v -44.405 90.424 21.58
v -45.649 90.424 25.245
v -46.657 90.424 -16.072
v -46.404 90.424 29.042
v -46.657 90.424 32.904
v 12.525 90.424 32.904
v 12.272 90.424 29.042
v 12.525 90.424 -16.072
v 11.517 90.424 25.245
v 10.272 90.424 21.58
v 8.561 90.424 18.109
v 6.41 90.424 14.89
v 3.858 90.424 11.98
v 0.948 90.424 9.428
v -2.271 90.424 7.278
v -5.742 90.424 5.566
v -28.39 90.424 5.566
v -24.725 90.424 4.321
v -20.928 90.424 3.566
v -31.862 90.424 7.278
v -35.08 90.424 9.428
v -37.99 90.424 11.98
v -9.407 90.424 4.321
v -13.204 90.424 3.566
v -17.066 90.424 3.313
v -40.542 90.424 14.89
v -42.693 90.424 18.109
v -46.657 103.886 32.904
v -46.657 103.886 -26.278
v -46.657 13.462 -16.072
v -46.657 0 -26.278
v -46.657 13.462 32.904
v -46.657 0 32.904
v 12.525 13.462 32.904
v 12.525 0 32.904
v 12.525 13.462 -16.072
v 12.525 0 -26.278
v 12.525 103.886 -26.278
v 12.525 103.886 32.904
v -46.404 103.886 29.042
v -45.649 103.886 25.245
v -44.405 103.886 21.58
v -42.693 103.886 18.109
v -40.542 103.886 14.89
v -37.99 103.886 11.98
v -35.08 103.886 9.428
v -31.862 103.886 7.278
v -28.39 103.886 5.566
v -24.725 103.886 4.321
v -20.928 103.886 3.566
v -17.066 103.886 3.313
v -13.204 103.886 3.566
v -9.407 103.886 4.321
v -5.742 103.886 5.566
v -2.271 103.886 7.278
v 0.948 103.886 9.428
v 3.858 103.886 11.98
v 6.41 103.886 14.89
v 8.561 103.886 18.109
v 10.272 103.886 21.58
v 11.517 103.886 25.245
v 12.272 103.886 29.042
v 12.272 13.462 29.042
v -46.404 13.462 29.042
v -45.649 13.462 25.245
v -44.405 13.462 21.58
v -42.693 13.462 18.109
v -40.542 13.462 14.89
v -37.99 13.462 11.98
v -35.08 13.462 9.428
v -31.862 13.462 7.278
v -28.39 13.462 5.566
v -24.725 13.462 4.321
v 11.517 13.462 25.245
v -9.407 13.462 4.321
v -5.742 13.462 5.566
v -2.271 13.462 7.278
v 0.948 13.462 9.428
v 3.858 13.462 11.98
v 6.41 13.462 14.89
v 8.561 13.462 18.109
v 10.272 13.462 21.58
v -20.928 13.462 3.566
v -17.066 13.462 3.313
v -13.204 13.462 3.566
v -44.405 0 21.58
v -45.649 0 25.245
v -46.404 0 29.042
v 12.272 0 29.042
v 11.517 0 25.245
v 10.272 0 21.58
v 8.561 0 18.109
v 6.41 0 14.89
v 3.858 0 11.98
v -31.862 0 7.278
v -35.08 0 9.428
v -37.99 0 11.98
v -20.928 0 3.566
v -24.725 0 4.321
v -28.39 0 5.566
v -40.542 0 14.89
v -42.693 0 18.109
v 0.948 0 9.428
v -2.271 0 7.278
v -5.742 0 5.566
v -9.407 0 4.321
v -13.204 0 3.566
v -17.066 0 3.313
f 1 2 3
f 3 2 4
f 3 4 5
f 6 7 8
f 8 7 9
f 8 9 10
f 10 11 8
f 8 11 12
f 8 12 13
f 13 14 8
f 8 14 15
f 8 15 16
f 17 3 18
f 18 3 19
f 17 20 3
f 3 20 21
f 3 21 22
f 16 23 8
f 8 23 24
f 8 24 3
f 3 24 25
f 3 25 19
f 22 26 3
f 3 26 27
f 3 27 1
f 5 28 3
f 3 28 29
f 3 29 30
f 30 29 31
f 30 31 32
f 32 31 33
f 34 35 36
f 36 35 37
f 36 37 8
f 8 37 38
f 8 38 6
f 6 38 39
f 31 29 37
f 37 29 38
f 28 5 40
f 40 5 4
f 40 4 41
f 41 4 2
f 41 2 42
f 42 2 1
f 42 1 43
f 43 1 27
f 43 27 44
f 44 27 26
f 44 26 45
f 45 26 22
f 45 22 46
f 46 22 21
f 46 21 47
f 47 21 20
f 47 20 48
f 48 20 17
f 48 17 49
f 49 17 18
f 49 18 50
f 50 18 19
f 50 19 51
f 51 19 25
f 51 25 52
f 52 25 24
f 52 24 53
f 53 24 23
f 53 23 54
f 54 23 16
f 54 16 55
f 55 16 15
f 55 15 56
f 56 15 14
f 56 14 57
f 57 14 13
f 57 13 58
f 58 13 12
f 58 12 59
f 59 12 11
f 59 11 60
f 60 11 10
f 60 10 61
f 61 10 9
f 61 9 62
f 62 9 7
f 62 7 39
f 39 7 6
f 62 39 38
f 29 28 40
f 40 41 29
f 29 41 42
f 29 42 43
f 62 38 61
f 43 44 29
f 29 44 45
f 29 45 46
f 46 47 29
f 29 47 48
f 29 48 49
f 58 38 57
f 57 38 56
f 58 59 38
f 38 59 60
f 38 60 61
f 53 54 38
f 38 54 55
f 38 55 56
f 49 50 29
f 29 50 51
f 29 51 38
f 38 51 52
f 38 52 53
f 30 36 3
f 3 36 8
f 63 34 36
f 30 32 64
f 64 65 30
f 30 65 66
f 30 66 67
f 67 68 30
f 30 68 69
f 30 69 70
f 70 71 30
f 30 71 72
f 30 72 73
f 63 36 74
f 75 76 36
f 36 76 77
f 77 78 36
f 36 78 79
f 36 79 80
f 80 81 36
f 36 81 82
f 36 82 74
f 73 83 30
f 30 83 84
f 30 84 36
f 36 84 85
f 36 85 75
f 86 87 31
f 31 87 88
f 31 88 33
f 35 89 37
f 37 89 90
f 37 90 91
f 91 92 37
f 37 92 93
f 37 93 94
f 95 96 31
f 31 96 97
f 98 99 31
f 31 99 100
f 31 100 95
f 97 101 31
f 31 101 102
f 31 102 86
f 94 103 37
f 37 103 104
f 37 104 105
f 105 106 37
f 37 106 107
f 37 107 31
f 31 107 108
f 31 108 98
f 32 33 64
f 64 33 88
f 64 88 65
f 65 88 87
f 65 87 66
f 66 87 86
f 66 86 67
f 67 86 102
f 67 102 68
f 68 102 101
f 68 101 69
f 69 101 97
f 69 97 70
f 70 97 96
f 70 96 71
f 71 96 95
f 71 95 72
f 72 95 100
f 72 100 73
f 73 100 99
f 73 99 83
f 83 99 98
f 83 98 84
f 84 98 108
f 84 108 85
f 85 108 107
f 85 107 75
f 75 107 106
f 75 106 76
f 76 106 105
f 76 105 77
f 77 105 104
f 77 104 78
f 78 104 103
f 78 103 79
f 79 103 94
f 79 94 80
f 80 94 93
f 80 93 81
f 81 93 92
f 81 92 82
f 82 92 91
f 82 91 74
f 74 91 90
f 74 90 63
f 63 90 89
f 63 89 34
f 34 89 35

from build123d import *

# Parameters (mm, degrees)
SKETCH1_W           = 59.182
SKETCH1_H           = 59.182
BOSS_EXTRUDE2_DEPTH = 103.886
SKETCH4_R           = 29.591
CUT_EXTRUDE1_DEPTH  = 119.540559012
SKETCH6_W           = 59.182
SKETCH6_H           = 76.962
CUT_EXTRUDE2_DEPTH  = 129.342082086
SKETCH8_W           = 59.182
SKETCH8_H           = 10.20581791
BOSS_EXTRUDE3_DEPTH = 76.962


with BuildPart() as part:
    # Sketch1 → Boss-Extrude2 (new body)
    with BuildSketch(Plane(origin=(0, 0, 0), x_dir=(1, 0, 0), z_dir=(0, 1, 0))):
        with Locations((-17.066045707, -3.313152031)):
            Rectangle(SKETCH1_W, SKETCH1_H)
    extrude(amount=BOSS_EXTRUDE2_DEPTH)

    # Sketch4 → Cut-Extrude1 (cut, through all)
    with BuildSketch(Plane.XZ):
        with Locations((-17.066045707, 32.904152031)):
            Circle(SKETCH4_R)
    extrude(amount=-CUT_EXTRUDE1_DEPTH, mode=Mode.SUBTRACT)

    # Sketch6 → Cut-Extrude2 (cut, through all)
    with BuildSketch(Plane(origin=(0, 0, -26.277847969), x_dir=(-1, 0, 0), z_dir=(0, 0, -1))):
        with Locations((17.066045707, 51.943)):
            Rectangle(SKETCH6_W, SKETCH6_H)
    extrude(amount=-CUT_EXTRUDE2_DEPTH, mode=Mode.SUBTRACT)


with BuildPart() as cut_extrude2_piece_1:
    # of the separate pieces the step leaves, piece 1, a body of its own (cut_extrude2_pieces)
    add(part.part.solids().sort_by_distance((12.524954293, 90.424, -26.277847969))[0])



with BuildPart() as cut_extrude2_piece_2:
    # of the separate pieces the step leaves, piece 2, a body of its own (cut_extrude2_pieces)
    add(part.part.solids().sort_by_distance((-46.657045707, 0, -26.277847969))[0])


with BuildPart() as cut_extrude2_piece_1_1:
    add(cut_extrude2_piece_1.part)

    add(cut_extrude2_piece_2.part)  # Boss-Extrude3 merges Cut-Extrude2 piece 2
    # Sketch8 → Boss-Extrude3 (add)
    with BuildSketch(Plane.XZ.offset(-90.424)):
        with Locations((-17.066045707, -21.174939014)):
            Rectangle(SKETCH8_W, SKETCH8_H)
    extrude(amount=BOSS_EXTRUDE3_DEPTH)


solid = cut_extrude2_piece_1_1.part
